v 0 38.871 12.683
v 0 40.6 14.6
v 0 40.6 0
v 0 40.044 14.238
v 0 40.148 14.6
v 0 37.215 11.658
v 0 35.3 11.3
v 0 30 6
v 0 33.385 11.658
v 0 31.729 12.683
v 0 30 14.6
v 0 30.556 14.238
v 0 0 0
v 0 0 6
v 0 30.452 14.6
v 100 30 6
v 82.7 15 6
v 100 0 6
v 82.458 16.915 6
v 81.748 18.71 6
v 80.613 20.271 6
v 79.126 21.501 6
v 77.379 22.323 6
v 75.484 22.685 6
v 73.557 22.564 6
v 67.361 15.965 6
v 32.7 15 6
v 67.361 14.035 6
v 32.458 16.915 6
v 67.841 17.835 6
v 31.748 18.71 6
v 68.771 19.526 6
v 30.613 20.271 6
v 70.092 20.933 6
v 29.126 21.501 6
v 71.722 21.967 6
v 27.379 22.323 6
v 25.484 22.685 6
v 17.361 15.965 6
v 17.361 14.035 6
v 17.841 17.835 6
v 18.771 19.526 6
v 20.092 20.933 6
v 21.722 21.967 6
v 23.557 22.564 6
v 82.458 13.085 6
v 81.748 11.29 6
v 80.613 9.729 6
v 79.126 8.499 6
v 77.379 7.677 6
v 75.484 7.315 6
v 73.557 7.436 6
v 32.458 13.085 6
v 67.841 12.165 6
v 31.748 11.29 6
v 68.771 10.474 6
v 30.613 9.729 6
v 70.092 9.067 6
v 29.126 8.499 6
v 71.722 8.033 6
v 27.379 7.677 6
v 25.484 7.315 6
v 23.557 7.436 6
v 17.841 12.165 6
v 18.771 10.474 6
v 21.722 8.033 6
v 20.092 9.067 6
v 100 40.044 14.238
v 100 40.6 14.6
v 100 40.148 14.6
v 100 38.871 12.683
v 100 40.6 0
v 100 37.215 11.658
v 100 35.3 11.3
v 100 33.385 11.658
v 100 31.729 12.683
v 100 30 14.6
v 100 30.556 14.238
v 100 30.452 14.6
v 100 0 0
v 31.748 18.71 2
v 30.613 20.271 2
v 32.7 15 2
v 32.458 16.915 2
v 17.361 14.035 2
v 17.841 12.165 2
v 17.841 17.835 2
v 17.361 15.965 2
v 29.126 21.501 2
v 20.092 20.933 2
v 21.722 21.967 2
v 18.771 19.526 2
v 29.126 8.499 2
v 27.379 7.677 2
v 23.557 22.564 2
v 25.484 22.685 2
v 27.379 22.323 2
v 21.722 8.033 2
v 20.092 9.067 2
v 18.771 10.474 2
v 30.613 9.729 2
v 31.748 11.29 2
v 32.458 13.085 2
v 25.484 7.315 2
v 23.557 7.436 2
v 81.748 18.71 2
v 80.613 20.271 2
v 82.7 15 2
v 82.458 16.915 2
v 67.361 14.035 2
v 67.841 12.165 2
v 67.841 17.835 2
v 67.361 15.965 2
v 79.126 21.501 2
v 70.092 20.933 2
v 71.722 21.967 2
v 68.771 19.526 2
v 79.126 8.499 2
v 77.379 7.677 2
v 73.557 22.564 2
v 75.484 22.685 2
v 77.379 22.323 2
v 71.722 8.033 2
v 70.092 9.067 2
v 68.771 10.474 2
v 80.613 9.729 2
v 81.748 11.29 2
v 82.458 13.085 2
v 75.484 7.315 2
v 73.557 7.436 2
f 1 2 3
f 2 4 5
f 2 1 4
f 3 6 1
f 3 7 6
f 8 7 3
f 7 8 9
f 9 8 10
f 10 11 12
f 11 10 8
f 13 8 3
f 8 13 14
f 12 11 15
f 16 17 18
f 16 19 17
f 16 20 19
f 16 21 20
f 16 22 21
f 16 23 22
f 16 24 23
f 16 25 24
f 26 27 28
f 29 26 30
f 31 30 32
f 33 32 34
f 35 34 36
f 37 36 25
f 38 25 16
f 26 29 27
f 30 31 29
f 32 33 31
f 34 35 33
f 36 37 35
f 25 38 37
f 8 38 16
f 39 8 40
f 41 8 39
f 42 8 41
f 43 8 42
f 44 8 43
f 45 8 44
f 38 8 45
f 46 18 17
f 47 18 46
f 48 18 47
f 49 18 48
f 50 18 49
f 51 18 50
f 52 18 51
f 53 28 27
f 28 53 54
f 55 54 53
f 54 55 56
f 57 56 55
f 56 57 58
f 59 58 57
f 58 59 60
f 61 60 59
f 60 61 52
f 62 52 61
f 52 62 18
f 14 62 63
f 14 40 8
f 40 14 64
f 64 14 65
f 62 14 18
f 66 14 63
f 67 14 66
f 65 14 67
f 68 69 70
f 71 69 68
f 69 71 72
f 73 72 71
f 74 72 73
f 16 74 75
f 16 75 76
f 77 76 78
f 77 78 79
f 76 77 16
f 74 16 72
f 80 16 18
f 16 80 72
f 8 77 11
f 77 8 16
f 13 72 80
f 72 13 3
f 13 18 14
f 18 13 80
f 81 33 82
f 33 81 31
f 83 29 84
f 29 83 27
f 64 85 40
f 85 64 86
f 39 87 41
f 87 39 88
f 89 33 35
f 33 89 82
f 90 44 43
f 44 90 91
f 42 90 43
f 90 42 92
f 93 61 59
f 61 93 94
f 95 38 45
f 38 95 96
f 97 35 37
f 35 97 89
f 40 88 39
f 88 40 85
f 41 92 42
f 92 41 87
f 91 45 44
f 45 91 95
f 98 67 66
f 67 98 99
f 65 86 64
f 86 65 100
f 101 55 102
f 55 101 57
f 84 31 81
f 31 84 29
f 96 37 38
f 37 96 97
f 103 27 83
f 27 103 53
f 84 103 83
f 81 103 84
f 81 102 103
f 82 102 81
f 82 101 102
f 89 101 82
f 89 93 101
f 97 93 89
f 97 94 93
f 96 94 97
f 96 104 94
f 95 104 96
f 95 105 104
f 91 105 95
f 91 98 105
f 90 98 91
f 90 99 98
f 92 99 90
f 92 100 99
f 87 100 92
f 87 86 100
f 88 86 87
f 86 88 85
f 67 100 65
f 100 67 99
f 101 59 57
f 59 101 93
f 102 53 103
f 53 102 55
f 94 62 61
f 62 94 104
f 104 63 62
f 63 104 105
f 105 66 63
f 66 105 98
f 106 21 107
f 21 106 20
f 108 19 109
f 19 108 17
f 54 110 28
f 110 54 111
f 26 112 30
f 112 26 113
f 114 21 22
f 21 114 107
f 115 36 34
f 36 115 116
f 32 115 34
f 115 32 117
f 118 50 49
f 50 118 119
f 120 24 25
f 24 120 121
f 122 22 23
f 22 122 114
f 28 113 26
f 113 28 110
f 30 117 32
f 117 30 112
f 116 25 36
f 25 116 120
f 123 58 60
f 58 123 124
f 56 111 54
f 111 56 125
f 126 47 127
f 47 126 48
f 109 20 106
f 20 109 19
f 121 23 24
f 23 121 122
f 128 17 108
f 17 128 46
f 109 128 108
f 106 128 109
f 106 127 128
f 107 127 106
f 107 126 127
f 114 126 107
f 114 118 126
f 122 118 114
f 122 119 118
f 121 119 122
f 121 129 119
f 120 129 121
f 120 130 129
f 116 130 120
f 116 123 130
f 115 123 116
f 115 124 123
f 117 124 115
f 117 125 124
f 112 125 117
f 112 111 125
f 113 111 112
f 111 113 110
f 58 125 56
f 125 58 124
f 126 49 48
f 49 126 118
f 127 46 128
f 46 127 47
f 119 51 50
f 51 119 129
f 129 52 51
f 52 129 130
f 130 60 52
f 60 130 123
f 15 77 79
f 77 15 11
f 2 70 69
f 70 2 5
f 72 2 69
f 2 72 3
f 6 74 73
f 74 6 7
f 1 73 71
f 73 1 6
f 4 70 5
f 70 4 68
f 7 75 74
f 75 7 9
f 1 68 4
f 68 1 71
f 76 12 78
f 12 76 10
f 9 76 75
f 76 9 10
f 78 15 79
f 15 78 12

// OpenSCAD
magnetBaseInnerDiameter = 15.4;
magnetHeight = 4.0;
length = 100;
height = 6;
width = 30;
markerDiameter = 10.6; //TODO

union() {
    difference() {
        cube([length, width, height]);
        translate([length * .25, 15, height - magnetHeight])
            cylinder(magnetHeight, d=magnetBaseInnerDiameter);
        translate([length * .75, 15, height - magnetHeight])
            cylinder(magnetHeight, d=magnetBaseInnerDiameter);
    }
    difference() {
        rotate([0, 0, 0])
            translate([0, width, 0])
                cube([length, markerDiameter, height + markerDiameter - 2]);
        translate([0, width + markerDiameter/2, height + markerDiameter])
            rotate([0, 90, 0])
                cylinder(length, d=markerDiameter);
    }

//    translate([0, width, -5])
//        rotate([60, 0, 0])
//            cube([length, markerDiameter, 20]);

}
